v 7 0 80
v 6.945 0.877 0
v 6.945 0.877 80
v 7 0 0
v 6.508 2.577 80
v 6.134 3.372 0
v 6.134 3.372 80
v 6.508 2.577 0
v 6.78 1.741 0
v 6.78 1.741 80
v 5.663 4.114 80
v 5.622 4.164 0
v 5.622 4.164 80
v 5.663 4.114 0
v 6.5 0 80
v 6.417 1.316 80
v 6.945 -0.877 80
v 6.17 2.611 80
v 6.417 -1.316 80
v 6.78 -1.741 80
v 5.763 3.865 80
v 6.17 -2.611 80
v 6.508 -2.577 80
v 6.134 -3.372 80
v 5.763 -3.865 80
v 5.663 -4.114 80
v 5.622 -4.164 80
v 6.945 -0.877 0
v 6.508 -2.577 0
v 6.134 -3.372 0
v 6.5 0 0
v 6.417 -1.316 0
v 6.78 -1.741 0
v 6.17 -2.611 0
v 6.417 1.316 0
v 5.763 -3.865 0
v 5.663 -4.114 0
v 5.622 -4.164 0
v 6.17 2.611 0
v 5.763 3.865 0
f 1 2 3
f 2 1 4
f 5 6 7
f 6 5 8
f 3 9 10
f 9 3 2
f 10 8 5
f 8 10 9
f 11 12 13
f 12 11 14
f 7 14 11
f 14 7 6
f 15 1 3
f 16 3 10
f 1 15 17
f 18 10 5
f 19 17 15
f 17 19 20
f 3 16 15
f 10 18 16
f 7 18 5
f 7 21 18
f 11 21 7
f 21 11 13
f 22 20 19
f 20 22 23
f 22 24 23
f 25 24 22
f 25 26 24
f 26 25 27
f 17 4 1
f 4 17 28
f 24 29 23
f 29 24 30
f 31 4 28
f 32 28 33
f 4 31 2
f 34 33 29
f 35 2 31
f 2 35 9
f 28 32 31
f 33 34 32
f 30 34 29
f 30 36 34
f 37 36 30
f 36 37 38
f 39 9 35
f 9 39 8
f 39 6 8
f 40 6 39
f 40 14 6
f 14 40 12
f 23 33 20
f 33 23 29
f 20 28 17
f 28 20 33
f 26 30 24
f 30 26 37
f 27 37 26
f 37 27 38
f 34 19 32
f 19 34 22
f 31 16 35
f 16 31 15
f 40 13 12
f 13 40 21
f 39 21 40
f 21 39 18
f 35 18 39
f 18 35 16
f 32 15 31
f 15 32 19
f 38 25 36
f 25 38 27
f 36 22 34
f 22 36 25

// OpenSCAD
$fn = 50;


difference() {
	union() {
		cylinder(h = 80, r = 7.0000000000);
		translate(v = [-7.0000000000, 0, 0]) {
			cylinder(h = 80, r = 7.0000000000);
		}
	}
	union() {
		cylinder(h = 80, r = 3.2500000000);
		cylinder(h = 80, r = 1.8000000000);
		cylinder(h = 80, r = 1.8000000000);
		cylinder(h = 80, r = 1.8000000000);
		translate(v = [-11.5000000000, 0, 0]) {
			hull() {
				translate(v = [-3.7500000000, 0.0000000000, 0]) {
					cylinder(h = 80, r = 10.5000000000);
				}
				translate(v = [3.7500000000, 0.0000000000, 0]) {
					cylinder(h = 80, r = 10.5000000000);
				}
				translate(v = [-3.7500000000, -0.0000000000, 0]) {
					cylinder(h = 80, r = 10.5000000000);
				}
				translate(v = [3.7500000000, -0.0000000000, 0]) {
					cylinder(h = 80, r = 10.5000000000);
				}
			}
		}
		translate(v = [-4.0000000000, 0, 0.0000000000]) {
			cylinder(h = 80, r = 10.5000000000);
		}
	}
}
